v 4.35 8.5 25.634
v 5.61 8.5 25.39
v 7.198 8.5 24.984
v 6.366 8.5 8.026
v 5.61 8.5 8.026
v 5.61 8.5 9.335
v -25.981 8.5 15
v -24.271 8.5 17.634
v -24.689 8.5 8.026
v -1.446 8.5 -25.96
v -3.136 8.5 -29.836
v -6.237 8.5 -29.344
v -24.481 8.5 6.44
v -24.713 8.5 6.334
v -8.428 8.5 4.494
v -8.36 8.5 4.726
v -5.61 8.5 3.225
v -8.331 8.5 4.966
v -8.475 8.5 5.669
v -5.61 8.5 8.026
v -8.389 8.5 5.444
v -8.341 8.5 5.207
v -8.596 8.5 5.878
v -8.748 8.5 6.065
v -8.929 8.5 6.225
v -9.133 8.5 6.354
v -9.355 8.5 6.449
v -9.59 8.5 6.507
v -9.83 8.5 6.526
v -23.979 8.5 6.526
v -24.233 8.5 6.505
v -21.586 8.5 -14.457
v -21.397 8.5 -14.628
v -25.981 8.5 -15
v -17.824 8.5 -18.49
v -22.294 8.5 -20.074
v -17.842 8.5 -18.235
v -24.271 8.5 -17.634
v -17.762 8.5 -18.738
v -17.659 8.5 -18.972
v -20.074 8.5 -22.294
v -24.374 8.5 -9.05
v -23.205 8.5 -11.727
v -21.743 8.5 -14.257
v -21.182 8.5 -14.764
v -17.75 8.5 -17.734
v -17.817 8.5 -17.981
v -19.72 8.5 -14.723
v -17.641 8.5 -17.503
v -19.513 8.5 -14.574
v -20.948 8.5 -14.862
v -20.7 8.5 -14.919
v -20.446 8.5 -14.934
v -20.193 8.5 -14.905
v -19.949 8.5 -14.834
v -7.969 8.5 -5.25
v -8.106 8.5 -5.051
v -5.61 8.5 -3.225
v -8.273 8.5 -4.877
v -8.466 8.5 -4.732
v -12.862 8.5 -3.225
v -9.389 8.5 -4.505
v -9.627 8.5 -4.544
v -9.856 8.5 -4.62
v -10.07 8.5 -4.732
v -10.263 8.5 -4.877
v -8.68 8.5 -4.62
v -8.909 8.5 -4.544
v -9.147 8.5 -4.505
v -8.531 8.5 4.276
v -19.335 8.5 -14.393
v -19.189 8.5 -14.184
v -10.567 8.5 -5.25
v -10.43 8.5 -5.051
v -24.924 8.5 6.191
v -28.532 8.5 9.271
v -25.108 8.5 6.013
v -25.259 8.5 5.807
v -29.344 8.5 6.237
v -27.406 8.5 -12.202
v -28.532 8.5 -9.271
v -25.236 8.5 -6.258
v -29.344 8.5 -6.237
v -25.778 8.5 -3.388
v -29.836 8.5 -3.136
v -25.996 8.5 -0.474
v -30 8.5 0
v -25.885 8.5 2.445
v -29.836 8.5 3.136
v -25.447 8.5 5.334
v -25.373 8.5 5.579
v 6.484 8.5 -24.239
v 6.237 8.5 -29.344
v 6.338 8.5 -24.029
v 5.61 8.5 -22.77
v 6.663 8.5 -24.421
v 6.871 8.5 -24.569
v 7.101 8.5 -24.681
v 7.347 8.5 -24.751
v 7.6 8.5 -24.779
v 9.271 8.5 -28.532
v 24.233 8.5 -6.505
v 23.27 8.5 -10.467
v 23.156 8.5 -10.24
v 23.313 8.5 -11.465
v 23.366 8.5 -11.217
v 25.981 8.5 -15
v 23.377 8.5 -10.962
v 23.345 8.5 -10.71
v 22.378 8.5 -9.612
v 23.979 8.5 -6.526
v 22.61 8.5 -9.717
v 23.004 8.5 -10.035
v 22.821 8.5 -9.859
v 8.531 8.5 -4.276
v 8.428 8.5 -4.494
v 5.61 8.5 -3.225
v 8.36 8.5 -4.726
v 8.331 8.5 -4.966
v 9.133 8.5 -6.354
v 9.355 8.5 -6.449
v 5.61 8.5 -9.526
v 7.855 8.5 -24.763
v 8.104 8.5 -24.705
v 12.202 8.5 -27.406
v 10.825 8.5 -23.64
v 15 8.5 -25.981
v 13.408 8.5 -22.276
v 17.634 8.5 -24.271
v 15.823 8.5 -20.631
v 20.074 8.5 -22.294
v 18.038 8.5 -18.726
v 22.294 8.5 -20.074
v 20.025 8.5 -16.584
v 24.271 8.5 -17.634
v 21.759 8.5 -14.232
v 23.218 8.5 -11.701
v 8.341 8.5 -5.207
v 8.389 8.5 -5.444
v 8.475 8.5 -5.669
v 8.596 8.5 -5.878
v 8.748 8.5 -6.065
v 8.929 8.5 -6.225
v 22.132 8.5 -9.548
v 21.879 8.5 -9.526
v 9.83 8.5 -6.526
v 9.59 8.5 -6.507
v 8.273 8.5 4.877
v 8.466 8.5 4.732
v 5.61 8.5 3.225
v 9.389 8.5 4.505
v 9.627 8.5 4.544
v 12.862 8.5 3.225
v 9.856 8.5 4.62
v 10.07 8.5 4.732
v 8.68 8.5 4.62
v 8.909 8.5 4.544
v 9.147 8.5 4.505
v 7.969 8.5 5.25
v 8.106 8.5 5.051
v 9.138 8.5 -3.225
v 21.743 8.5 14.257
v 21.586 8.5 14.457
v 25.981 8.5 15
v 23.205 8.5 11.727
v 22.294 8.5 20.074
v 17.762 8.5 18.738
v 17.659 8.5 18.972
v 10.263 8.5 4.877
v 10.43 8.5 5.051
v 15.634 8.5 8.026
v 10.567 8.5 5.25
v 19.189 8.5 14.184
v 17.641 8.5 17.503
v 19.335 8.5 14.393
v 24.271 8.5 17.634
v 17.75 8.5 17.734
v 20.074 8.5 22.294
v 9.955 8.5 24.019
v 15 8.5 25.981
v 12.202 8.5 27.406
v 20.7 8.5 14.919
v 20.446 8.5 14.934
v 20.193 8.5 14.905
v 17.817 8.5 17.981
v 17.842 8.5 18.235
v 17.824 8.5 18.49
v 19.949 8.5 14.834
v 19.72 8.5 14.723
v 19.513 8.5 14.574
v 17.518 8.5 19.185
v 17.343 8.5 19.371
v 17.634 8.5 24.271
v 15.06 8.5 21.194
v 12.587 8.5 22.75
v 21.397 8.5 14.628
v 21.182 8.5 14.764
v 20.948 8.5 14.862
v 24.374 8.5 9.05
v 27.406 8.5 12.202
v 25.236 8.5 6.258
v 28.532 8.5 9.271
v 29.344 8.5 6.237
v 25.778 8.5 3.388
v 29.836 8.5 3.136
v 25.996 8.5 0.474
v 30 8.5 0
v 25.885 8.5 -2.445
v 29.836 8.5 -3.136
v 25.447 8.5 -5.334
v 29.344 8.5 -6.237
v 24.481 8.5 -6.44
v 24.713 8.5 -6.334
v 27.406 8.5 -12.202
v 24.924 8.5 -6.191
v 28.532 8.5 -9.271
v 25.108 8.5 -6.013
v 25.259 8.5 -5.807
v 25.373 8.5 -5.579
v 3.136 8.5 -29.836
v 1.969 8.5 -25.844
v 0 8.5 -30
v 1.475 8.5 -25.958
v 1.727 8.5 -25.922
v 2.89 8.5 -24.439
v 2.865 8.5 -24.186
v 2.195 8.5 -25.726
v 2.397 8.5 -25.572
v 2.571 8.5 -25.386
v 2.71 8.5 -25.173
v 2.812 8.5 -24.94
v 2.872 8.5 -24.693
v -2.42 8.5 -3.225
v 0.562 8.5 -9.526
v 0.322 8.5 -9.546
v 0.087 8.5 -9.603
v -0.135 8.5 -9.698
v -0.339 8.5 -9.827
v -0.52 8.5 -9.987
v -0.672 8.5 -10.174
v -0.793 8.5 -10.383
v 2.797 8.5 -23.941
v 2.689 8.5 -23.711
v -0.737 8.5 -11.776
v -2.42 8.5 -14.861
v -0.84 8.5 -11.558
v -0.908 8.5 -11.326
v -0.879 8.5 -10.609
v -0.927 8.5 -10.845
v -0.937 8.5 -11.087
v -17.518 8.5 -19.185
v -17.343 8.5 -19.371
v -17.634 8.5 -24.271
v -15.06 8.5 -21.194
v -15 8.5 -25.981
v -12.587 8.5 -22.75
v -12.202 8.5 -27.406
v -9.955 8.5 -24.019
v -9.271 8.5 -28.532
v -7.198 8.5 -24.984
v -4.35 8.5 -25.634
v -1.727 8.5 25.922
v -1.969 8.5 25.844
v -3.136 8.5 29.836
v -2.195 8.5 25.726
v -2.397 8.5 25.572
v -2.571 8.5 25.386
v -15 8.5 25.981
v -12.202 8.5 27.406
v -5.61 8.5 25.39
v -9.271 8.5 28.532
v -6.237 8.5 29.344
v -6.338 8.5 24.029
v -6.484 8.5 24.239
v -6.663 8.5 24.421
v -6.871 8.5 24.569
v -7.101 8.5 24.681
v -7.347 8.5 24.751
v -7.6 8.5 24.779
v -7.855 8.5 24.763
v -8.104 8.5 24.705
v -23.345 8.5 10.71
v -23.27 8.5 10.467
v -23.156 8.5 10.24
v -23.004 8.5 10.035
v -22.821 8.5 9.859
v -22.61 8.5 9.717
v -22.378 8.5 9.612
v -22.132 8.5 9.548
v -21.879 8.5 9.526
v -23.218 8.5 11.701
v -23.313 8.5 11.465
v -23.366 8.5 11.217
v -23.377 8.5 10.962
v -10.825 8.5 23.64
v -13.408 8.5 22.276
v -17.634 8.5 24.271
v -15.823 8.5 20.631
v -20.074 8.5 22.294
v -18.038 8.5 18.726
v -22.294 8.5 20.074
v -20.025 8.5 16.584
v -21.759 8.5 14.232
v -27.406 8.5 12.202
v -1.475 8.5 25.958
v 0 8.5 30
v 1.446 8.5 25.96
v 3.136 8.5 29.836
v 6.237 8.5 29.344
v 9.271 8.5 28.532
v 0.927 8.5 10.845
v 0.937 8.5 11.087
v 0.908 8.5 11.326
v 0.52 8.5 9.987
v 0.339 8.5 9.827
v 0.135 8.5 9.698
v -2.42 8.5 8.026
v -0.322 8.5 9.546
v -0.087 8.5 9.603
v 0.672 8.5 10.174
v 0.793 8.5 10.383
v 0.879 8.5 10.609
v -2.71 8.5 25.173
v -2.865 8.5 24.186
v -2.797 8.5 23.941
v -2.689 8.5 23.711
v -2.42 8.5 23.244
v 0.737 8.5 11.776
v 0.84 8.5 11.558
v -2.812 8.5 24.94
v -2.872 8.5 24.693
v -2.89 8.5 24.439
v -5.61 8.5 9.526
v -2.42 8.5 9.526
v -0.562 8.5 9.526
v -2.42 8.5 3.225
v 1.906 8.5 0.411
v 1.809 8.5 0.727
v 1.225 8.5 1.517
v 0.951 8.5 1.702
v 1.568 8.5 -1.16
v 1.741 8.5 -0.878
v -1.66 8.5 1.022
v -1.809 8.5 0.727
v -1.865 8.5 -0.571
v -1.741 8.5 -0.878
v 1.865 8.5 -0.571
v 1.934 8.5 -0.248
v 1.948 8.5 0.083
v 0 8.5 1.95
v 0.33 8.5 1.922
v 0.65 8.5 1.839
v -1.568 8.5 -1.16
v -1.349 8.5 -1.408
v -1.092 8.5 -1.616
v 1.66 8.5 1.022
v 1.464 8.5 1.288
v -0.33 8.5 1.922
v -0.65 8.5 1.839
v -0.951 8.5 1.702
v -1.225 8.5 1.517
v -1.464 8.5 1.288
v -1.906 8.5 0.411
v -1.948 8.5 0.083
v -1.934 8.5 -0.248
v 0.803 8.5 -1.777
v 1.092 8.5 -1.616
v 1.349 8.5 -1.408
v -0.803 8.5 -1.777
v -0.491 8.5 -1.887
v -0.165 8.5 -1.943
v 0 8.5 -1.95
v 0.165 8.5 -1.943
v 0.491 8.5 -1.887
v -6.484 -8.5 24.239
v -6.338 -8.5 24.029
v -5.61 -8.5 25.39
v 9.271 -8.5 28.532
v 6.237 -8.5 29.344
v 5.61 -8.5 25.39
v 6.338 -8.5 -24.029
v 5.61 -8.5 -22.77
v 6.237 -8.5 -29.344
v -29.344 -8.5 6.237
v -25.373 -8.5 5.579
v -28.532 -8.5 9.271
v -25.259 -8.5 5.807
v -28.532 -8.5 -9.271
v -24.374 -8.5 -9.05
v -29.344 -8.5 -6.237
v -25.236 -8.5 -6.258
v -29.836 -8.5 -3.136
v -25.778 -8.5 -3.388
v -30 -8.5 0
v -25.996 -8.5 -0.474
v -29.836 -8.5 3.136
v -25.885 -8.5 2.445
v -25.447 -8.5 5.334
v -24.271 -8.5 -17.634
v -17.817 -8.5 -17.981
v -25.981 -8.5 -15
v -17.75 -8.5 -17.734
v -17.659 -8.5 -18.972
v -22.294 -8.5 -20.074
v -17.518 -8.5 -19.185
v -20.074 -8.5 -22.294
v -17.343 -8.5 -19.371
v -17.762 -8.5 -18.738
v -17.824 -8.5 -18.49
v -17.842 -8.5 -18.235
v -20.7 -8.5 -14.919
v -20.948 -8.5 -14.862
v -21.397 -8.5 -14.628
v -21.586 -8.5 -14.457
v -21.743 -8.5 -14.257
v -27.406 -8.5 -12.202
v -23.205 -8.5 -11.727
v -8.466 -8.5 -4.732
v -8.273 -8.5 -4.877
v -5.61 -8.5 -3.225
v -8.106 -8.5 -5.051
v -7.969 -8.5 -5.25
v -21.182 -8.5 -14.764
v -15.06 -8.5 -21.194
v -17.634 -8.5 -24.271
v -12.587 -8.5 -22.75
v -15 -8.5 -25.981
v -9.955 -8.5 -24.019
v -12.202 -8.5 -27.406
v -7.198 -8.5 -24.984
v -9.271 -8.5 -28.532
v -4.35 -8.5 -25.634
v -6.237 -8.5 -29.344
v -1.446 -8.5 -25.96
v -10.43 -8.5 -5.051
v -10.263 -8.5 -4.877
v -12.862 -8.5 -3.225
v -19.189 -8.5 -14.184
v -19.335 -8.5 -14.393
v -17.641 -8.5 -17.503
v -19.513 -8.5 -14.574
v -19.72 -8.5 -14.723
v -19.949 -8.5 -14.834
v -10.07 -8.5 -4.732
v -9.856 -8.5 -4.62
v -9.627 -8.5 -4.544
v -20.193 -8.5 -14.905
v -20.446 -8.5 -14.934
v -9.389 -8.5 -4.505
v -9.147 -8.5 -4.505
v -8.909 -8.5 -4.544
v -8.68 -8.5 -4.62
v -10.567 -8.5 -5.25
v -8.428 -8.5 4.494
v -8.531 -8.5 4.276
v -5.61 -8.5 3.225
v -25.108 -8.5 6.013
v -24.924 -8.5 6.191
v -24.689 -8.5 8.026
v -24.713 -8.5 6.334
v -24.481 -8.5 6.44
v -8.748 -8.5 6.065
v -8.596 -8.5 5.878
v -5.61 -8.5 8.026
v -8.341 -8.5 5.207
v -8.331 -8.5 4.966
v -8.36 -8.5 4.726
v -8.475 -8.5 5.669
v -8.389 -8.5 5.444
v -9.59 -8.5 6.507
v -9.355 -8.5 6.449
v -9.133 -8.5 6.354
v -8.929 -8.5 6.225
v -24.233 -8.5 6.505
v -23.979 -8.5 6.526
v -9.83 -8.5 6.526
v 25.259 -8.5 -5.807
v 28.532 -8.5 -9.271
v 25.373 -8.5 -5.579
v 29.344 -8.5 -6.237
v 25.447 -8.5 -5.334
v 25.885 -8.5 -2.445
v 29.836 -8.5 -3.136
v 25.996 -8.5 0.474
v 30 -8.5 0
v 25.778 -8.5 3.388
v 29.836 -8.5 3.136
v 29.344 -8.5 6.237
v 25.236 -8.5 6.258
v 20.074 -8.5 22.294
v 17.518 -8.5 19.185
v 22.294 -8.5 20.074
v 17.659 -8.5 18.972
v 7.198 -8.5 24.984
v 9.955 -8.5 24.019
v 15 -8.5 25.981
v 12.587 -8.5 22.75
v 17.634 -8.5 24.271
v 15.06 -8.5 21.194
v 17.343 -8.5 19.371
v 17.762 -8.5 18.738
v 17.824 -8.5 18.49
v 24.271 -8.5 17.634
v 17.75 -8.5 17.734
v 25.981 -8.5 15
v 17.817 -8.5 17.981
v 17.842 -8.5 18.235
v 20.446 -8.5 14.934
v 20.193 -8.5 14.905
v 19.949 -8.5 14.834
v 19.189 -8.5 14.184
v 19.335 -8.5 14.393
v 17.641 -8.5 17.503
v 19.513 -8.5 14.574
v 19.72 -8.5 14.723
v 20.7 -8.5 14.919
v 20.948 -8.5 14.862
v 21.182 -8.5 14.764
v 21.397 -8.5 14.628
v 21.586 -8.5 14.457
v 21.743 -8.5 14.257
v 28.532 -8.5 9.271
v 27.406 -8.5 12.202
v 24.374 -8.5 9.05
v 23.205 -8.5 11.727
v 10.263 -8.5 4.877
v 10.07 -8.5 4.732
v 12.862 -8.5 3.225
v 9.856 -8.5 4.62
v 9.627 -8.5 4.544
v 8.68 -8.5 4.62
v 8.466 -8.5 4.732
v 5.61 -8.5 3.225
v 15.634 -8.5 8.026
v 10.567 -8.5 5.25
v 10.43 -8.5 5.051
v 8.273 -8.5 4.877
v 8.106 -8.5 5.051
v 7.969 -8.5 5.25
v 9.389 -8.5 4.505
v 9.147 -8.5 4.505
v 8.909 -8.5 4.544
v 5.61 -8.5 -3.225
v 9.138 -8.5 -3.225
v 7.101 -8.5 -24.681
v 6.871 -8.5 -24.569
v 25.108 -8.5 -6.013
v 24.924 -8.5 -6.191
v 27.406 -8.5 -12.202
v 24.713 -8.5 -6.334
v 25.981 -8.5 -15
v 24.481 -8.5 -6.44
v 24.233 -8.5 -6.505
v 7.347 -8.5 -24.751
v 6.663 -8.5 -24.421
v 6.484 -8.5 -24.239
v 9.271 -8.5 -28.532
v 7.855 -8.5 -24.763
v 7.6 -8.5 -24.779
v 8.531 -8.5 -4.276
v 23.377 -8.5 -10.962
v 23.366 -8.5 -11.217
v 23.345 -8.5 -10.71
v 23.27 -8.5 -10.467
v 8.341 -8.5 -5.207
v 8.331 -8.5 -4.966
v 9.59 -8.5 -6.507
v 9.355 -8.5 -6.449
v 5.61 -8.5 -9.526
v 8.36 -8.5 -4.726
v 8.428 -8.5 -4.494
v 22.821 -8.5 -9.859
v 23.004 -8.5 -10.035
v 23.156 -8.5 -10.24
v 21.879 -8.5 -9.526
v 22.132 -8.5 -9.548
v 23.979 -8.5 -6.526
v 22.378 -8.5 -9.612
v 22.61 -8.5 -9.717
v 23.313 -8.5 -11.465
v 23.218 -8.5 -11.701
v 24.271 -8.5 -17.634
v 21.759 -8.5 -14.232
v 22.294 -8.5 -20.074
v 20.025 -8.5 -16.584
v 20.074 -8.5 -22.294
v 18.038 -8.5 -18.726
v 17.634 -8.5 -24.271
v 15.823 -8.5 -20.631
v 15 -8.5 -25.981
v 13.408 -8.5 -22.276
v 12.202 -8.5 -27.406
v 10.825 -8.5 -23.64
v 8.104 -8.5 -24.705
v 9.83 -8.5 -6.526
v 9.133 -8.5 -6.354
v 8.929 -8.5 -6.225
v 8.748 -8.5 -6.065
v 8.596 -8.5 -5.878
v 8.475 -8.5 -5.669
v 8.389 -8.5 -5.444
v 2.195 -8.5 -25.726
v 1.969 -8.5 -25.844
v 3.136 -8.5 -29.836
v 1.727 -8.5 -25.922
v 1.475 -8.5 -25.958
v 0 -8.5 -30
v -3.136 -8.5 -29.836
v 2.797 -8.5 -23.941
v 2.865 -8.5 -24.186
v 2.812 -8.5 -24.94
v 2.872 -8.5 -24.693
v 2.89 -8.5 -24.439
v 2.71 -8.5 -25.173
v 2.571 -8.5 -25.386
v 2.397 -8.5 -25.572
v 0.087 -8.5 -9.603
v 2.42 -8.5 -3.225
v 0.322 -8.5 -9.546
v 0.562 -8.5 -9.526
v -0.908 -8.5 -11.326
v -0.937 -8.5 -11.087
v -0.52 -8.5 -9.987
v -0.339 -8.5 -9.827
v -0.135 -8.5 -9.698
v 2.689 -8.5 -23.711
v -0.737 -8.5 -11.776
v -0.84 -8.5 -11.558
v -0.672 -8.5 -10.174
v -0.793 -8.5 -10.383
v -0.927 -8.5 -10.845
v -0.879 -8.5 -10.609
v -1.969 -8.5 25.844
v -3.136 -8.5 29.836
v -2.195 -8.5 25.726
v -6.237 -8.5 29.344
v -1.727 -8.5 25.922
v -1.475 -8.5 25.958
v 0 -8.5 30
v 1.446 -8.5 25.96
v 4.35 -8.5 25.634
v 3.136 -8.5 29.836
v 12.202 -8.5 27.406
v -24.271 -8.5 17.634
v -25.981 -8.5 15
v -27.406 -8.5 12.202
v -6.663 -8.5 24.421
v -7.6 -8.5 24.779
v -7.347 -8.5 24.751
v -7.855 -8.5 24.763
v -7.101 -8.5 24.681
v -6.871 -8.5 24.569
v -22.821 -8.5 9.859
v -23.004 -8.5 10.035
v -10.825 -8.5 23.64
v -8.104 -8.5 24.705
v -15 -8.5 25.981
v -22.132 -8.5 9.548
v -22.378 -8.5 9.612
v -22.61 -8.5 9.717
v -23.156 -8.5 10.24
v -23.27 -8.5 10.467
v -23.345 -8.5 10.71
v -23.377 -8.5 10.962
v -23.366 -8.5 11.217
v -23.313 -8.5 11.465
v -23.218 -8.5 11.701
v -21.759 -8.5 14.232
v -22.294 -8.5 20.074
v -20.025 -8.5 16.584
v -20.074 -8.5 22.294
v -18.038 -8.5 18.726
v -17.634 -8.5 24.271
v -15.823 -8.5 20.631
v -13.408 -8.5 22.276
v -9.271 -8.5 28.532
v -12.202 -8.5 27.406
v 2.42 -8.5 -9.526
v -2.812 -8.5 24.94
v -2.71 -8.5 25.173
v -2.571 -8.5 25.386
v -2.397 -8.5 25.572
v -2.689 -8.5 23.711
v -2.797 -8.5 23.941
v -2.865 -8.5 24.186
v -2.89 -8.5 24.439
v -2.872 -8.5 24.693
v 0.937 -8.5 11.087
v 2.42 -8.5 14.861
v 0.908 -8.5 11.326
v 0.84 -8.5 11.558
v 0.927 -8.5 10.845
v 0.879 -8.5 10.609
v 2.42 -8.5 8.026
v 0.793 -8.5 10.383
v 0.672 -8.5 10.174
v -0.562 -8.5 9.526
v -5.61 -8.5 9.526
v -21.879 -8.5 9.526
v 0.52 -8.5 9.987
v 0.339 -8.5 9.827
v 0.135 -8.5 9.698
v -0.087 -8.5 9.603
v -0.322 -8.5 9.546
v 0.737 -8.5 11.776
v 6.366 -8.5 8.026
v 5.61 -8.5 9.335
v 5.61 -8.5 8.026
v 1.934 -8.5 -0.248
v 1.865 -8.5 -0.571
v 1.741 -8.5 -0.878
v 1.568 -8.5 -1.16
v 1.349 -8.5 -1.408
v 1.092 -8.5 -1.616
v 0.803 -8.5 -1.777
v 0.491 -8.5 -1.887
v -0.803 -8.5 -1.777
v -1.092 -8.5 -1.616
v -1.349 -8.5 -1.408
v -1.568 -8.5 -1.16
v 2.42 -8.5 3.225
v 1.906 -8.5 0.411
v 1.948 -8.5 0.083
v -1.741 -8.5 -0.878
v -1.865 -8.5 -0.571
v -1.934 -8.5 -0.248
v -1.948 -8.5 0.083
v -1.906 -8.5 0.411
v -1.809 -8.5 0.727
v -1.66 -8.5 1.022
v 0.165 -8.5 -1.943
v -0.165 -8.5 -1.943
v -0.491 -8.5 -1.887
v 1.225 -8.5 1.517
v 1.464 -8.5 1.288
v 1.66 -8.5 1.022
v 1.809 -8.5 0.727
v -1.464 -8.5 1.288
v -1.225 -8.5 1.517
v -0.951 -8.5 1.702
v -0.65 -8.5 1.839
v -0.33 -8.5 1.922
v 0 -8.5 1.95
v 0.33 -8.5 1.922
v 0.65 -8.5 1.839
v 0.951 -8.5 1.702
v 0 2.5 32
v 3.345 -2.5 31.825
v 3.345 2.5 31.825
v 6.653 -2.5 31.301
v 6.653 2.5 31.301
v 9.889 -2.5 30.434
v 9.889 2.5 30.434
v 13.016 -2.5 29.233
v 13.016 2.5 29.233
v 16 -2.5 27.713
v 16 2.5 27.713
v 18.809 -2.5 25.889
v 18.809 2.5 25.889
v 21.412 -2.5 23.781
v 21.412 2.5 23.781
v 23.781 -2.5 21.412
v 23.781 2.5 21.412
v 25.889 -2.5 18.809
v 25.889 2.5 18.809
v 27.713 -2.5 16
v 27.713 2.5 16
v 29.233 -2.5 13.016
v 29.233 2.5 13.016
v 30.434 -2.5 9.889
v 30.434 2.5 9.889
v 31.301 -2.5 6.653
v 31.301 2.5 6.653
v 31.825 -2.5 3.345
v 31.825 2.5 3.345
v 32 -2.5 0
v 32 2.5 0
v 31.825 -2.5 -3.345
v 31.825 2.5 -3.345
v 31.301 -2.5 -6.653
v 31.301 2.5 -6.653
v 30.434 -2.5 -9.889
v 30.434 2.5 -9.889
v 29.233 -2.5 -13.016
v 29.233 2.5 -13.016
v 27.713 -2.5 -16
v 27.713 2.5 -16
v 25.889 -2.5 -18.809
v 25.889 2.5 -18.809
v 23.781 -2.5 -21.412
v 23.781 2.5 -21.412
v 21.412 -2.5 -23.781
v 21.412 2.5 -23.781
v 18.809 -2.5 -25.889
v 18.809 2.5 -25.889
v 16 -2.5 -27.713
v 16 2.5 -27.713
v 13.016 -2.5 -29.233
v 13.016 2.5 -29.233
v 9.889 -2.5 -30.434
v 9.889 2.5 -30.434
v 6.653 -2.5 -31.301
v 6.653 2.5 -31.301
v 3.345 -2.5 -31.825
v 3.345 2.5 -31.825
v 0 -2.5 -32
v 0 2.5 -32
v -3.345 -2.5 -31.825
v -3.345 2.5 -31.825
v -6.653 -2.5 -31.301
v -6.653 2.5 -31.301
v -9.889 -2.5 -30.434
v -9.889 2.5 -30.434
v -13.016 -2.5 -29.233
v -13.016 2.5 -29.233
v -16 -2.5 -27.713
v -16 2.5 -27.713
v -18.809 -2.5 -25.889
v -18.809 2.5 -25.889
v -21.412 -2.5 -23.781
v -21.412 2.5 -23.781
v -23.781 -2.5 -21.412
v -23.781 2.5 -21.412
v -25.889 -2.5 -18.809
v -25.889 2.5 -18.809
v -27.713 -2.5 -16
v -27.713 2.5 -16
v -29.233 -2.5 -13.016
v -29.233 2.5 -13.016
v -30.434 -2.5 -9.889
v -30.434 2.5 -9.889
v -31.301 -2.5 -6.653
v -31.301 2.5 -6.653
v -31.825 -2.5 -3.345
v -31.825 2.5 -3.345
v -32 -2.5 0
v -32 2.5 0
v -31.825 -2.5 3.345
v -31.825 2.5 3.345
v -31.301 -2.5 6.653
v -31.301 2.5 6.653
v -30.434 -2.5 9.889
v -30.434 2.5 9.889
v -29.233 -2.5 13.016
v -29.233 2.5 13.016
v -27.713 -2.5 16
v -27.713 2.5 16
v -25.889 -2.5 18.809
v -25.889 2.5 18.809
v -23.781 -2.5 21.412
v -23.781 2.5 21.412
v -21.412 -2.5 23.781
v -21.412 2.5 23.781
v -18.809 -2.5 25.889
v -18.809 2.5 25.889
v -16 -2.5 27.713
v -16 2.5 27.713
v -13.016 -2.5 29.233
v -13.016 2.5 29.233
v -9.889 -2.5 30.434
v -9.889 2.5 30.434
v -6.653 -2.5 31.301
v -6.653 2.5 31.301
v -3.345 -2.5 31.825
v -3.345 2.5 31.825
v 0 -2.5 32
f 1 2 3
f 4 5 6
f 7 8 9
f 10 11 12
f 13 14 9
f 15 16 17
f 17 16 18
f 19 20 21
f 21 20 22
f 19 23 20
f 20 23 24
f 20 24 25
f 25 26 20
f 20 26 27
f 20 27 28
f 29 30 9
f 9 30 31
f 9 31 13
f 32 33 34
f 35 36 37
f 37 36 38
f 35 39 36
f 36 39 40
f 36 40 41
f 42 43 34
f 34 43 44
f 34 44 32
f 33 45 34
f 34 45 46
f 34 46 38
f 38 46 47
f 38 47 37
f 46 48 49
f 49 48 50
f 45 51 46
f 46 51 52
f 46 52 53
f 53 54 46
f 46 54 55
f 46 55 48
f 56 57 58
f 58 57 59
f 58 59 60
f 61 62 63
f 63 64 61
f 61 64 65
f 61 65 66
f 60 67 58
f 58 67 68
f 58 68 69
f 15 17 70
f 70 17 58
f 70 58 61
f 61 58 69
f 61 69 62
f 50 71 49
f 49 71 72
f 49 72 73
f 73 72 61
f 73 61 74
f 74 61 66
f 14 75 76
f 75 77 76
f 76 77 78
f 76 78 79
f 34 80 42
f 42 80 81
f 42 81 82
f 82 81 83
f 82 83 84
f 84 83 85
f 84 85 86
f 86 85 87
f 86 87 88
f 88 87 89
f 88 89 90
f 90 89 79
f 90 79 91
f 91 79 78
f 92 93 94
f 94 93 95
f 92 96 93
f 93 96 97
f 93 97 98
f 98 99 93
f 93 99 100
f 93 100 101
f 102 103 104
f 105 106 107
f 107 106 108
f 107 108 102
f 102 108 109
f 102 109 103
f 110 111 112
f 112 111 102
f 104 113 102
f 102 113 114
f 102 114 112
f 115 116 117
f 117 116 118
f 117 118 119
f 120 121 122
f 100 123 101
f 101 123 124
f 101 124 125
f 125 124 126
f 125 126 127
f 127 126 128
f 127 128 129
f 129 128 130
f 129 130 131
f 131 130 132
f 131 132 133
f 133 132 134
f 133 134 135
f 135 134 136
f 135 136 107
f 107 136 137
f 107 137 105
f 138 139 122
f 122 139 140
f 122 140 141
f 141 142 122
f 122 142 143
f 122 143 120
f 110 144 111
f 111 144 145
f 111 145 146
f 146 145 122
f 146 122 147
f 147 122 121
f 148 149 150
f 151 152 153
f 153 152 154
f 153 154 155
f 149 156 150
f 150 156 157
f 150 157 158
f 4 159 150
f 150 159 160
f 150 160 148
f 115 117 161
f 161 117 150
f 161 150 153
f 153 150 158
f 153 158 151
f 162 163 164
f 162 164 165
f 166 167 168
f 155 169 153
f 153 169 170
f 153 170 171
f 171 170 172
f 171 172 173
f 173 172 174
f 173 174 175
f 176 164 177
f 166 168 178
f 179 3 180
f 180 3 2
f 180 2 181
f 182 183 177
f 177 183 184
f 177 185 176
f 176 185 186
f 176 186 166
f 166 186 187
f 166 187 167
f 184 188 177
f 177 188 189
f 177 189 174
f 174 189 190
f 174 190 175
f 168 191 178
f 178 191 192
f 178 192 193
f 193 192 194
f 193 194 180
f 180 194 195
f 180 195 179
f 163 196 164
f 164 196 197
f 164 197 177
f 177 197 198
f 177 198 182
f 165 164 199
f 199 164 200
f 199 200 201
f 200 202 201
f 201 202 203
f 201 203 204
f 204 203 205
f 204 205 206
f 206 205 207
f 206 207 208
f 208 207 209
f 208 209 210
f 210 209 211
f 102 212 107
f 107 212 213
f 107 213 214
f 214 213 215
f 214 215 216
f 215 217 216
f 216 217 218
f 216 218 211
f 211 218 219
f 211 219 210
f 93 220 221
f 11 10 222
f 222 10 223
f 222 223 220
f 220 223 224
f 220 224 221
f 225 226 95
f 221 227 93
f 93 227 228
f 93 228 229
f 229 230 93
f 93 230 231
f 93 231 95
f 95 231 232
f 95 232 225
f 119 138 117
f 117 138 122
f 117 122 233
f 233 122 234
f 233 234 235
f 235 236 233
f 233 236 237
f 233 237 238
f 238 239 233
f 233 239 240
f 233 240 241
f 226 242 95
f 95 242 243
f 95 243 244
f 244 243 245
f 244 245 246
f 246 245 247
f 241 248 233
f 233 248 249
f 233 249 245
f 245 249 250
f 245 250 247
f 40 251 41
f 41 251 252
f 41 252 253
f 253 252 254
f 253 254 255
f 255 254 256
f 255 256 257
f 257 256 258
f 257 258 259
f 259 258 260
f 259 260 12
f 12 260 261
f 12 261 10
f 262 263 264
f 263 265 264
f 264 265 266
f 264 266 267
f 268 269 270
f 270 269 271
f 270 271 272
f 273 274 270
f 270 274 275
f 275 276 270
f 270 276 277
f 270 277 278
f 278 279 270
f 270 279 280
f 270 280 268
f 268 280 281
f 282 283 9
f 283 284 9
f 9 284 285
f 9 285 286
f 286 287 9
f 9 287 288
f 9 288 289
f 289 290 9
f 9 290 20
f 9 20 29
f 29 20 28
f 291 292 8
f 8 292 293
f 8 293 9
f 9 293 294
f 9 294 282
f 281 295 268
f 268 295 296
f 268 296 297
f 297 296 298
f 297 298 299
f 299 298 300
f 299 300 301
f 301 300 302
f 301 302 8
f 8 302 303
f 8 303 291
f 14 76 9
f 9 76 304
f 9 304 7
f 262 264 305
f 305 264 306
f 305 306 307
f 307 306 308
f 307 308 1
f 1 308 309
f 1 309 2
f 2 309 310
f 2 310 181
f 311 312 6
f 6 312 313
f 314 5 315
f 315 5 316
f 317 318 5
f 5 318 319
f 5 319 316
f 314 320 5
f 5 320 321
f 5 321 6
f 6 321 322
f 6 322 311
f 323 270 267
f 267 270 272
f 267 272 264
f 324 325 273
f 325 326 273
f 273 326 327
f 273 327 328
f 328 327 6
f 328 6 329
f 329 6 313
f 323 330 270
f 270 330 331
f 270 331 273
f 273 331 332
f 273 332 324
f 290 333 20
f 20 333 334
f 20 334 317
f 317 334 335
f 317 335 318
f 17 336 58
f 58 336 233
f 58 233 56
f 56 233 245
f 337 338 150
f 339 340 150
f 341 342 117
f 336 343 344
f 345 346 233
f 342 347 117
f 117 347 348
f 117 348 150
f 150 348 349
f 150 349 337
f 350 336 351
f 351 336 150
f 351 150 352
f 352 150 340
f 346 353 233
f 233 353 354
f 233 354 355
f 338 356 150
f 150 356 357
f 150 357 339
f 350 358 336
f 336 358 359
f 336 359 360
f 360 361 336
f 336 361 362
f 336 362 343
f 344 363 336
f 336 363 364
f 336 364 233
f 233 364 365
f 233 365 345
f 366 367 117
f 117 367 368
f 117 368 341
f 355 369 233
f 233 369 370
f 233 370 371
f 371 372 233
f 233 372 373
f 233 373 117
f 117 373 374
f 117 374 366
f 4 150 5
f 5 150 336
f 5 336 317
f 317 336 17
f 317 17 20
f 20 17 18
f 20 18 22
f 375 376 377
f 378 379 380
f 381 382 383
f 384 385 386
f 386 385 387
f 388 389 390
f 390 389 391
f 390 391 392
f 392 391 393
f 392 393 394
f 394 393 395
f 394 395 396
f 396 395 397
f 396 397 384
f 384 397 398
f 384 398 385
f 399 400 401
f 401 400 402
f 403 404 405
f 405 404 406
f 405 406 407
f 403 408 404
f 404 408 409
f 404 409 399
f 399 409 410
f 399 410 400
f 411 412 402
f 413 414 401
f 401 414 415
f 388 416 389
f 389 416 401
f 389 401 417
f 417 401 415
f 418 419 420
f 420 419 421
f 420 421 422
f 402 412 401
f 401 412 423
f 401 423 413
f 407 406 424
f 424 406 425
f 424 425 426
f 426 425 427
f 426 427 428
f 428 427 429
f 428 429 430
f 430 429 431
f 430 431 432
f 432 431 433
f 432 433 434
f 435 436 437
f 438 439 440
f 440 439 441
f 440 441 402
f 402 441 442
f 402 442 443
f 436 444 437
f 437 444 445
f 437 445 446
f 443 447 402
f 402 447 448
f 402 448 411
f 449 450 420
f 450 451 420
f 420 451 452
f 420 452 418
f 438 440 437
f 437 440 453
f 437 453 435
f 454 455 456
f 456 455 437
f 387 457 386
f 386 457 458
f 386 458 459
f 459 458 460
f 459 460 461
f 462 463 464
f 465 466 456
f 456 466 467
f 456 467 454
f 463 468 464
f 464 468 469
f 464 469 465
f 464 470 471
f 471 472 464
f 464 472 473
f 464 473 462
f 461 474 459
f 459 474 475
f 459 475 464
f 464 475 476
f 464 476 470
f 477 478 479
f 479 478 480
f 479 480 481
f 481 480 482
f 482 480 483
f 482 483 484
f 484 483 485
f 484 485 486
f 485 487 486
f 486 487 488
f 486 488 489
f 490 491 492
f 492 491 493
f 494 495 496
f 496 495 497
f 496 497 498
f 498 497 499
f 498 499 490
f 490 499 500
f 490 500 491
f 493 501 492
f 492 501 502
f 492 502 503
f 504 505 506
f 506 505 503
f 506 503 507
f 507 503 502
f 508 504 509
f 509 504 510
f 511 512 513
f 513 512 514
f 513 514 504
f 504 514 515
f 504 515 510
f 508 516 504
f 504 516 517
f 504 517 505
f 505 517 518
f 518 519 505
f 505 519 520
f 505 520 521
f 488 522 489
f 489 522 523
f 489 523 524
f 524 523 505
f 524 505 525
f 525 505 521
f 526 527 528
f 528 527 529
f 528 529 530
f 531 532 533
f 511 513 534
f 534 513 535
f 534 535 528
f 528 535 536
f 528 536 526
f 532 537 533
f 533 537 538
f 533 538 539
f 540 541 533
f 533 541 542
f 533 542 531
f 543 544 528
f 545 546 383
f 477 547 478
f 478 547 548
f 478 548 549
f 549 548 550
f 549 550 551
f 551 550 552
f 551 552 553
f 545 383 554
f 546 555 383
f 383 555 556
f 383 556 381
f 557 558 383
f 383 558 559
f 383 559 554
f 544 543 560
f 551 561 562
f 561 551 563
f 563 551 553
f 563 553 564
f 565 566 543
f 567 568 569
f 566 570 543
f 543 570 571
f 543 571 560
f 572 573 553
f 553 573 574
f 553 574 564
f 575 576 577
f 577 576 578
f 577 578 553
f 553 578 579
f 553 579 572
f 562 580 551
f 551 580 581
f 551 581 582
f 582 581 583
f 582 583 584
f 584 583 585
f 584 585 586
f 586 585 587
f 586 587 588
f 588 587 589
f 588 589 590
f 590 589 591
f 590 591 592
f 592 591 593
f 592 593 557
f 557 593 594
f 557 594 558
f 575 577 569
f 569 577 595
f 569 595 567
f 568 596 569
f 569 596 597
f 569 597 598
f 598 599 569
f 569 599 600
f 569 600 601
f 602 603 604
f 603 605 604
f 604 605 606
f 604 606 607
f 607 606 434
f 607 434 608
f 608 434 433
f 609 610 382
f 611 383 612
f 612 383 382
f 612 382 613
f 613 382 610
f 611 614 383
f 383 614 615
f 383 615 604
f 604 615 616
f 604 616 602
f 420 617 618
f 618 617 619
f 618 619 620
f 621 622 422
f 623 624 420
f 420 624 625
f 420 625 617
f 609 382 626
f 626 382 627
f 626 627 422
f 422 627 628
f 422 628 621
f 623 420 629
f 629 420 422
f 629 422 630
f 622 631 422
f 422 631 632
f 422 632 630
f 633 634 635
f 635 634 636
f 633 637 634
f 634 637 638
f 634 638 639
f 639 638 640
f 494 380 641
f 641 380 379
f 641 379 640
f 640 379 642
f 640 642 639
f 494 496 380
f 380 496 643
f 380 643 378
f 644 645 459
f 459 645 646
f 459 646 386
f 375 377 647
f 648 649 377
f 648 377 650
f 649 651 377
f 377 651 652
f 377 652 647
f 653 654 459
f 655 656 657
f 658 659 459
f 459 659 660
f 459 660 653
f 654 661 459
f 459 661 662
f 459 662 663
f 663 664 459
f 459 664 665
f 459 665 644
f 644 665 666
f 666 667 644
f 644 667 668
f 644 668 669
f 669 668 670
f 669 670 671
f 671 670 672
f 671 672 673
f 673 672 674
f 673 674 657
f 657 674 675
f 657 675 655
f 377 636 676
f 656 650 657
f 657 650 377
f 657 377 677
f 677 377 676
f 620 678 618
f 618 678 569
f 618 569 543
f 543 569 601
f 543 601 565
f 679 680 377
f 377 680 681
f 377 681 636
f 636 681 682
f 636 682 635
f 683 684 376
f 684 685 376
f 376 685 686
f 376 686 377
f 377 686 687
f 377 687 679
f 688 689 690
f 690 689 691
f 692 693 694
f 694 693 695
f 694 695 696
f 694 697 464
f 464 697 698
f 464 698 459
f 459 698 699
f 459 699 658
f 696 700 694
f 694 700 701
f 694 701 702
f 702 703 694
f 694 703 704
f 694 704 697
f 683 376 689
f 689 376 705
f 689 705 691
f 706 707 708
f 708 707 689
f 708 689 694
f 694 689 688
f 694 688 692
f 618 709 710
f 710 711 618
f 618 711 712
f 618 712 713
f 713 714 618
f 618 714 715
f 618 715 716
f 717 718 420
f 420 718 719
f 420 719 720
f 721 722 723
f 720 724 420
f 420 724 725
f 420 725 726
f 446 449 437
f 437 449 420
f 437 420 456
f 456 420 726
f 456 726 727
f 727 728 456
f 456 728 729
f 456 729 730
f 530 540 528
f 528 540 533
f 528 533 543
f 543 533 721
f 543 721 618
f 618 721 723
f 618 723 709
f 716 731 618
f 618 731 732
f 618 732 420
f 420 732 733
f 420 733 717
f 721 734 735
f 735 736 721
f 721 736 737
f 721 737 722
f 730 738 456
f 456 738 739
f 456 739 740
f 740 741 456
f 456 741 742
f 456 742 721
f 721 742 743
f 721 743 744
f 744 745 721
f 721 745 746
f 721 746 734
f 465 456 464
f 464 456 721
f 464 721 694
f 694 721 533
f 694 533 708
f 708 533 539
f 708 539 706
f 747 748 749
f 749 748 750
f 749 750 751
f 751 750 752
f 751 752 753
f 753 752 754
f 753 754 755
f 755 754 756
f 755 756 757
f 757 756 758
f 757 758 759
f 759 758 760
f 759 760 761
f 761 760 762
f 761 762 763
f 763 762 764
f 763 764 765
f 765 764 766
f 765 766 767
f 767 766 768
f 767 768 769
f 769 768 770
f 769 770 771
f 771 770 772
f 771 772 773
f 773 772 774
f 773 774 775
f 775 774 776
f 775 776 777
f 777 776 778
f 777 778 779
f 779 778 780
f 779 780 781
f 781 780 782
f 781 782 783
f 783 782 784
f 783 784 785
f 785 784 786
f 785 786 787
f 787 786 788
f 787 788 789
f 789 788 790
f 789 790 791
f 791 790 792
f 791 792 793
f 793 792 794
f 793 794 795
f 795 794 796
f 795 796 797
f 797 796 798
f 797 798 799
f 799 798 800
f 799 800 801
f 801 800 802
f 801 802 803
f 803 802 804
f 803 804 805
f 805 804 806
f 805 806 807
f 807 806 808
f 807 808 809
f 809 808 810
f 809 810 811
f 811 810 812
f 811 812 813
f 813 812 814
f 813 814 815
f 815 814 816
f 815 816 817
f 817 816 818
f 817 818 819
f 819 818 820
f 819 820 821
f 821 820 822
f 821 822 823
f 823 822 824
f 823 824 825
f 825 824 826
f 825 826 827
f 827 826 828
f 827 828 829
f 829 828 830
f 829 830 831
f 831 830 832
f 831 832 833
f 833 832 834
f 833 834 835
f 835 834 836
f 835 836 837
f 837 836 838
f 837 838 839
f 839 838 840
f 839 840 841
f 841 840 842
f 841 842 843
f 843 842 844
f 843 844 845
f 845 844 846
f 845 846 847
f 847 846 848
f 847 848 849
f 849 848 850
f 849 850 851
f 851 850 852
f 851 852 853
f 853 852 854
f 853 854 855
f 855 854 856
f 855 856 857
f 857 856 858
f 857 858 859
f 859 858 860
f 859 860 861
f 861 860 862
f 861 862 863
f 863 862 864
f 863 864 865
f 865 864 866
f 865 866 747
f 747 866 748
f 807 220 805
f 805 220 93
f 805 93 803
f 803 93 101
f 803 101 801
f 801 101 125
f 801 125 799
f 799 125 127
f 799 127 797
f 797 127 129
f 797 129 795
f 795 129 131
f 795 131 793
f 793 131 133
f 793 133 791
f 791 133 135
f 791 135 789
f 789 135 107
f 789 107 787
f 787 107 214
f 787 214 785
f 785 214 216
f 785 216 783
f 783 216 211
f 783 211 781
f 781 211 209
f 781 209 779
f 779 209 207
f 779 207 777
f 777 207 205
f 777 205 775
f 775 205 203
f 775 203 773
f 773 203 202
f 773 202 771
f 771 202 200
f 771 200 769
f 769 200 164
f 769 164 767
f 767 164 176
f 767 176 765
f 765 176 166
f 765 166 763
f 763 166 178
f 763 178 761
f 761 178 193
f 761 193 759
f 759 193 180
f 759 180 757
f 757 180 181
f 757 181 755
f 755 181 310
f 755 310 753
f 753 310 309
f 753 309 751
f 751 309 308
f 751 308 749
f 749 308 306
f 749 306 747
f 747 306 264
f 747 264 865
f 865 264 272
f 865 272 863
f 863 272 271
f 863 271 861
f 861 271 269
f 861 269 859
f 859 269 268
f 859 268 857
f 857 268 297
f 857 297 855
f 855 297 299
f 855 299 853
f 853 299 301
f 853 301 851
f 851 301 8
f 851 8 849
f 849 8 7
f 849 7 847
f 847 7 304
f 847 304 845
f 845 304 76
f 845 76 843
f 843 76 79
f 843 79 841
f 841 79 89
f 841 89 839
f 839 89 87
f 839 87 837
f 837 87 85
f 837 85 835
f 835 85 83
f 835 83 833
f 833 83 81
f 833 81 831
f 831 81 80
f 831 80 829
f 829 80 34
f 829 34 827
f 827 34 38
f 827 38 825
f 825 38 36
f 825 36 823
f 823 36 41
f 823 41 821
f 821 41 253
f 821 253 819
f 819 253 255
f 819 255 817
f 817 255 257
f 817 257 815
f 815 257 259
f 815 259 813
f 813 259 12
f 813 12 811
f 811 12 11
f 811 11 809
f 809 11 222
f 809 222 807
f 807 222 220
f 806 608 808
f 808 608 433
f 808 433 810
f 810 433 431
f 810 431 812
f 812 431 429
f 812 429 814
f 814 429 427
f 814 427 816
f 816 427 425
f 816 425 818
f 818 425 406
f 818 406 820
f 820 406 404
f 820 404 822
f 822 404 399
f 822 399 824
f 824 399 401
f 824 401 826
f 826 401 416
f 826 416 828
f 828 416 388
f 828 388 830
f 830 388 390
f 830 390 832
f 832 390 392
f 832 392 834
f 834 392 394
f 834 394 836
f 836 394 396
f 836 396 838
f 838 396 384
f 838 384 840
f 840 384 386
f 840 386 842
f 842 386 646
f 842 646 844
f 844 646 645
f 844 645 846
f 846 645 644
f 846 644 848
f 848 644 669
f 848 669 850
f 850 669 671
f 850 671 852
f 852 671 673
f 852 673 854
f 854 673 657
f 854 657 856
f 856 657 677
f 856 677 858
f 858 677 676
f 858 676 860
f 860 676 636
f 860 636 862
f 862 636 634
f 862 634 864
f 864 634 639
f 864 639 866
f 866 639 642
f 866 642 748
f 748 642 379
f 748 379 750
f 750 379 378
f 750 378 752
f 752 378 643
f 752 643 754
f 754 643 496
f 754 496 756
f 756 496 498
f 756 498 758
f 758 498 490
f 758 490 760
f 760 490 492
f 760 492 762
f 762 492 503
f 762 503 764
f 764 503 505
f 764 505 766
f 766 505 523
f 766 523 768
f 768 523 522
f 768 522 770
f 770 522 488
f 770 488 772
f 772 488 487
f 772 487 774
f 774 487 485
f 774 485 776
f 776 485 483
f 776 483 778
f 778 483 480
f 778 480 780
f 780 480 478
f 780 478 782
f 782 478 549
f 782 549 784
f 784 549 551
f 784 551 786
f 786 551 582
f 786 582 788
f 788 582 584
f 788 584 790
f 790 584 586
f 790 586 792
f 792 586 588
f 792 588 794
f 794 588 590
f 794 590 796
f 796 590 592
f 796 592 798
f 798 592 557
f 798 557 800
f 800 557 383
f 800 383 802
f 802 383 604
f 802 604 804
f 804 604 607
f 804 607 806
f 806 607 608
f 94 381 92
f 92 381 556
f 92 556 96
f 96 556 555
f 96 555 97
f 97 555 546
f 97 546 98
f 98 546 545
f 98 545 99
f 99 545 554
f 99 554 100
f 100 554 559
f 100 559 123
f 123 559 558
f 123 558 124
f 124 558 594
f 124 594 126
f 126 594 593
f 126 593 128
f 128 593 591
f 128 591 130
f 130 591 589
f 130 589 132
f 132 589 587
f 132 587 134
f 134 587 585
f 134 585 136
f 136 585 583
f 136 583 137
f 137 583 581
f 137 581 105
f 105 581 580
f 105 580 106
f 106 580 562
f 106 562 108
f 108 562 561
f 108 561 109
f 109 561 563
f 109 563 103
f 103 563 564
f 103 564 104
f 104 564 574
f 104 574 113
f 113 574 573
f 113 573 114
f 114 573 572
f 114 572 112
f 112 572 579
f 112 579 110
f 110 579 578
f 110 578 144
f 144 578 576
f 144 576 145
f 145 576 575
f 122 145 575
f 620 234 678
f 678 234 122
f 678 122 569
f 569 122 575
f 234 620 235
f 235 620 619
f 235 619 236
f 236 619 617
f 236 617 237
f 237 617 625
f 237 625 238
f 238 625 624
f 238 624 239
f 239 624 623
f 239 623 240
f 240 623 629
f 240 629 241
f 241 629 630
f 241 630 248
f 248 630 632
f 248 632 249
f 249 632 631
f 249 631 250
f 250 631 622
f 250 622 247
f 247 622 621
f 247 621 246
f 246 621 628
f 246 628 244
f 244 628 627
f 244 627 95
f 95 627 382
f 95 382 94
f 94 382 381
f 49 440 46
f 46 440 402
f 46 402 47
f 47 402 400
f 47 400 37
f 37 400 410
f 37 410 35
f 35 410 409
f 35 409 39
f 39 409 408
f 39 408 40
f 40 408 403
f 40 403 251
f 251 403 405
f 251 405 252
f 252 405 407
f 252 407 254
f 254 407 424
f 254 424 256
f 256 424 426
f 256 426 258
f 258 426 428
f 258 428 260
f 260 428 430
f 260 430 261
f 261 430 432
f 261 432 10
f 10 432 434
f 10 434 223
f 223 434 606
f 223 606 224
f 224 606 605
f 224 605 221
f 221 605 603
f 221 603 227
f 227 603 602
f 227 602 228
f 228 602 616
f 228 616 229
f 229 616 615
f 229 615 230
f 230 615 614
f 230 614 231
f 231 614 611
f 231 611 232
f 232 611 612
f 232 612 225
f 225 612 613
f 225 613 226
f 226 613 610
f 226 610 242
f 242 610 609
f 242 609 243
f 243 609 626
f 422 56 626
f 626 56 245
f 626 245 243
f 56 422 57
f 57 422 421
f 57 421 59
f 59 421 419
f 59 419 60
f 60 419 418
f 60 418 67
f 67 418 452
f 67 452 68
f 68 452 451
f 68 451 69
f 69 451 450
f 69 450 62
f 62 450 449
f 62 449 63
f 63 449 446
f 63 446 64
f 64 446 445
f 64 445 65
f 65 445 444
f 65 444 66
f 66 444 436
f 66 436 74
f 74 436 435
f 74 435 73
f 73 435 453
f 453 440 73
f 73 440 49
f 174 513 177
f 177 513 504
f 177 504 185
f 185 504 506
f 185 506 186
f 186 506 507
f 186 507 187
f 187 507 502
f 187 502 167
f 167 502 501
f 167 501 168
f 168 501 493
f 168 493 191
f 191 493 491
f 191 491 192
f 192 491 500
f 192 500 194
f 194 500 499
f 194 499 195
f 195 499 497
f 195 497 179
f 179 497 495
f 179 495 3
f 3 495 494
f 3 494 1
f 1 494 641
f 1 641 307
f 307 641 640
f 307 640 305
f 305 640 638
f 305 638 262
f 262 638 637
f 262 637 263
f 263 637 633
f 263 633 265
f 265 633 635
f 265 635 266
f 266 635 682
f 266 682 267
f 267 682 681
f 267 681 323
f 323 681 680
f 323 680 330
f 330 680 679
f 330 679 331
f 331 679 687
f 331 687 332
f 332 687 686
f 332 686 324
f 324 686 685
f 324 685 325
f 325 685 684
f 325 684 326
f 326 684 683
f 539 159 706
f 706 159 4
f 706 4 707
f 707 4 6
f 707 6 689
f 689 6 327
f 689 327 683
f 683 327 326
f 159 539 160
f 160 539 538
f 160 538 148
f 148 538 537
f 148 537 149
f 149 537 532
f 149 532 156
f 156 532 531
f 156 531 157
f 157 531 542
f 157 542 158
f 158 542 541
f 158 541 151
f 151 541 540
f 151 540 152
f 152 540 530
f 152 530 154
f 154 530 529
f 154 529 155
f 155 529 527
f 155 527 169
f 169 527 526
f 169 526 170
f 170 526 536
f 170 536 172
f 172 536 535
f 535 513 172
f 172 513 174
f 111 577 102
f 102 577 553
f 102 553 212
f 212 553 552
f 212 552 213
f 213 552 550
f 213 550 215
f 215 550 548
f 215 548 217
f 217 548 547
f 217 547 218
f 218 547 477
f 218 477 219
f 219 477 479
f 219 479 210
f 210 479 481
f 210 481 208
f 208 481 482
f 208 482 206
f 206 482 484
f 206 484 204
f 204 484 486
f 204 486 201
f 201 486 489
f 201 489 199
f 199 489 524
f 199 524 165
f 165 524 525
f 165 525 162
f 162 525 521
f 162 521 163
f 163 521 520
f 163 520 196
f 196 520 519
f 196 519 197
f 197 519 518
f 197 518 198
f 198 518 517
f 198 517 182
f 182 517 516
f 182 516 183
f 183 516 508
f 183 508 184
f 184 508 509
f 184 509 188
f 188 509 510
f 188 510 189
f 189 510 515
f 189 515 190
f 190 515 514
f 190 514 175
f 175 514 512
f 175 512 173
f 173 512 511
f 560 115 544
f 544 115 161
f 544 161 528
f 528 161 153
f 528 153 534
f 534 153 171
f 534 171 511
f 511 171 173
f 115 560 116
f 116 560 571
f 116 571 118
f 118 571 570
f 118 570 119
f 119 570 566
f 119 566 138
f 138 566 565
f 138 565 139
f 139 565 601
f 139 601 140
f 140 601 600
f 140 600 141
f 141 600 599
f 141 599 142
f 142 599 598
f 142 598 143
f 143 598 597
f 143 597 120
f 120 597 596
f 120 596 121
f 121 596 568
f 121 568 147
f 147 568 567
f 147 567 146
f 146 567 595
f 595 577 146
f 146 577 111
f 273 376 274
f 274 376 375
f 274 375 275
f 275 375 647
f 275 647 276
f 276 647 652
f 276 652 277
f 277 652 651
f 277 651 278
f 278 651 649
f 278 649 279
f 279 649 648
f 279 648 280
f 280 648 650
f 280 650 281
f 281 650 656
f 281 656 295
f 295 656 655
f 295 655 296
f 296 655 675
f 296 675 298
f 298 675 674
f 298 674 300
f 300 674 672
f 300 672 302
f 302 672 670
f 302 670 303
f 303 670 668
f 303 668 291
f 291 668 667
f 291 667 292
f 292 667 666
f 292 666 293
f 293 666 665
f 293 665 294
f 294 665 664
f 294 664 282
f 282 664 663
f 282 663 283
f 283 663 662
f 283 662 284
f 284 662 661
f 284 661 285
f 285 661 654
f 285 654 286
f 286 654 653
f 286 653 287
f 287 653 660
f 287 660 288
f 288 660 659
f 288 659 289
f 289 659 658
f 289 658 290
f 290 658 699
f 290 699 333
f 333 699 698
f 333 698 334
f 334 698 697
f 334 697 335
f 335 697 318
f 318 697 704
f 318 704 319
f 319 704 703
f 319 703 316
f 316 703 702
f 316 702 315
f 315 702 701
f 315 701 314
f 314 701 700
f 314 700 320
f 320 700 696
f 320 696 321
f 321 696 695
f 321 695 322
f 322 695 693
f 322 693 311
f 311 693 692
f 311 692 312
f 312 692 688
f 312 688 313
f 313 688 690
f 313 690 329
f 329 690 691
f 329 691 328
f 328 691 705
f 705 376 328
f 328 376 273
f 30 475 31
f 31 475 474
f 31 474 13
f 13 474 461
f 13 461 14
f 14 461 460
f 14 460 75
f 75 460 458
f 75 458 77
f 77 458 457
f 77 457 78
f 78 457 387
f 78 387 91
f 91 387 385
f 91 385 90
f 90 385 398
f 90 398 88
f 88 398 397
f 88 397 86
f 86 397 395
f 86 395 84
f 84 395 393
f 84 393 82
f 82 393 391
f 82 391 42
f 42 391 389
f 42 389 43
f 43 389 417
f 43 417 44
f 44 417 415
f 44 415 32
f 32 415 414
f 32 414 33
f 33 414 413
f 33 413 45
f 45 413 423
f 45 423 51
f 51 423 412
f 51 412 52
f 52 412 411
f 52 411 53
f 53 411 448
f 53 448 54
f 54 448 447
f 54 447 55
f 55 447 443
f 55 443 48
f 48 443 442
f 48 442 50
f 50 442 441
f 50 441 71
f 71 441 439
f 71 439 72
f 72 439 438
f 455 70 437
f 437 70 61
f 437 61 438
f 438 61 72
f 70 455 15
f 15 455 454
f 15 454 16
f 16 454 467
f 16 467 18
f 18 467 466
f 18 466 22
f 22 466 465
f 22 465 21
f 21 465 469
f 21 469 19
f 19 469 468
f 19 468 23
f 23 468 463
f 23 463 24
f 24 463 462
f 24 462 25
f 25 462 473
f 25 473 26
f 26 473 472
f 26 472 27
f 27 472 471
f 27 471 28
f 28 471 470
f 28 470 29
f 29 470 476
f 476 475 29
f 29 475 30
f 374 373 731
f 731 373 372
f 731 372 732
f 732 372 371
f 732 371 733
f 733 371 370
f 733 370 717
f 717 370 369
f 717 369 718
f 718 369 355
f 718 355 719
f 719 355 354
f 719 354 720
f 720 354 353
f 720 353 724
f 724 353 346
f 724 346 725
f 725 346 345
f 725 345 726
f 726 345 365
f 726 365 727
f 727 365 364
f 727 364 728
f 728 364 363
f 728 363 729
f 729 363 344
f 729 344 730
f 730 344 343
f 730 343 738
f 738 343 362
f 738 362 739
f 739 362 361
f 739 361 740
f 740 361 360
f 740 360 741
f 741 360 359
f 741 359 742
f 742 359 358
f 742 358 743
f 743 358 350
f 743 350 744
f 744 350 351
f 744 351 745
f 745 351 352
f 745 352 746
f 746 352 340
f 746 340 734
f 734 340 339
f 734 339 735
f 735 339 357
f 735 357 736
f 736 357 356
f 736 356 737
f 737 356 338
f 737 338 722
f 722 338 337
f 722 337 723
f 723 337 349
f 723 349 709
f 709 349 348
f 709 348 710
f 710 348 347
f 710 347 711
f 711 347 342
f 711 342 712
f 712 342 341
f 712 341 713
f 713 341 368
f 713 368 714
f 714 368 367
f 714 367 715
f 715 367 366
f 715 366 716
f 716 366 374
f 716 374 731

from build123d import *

# Parameters (mm, degrees)
CUT_EXTRUDE1_REACH             = 48.046
CUT_EXTRUDE1_DIRECTION_2_REACH = 48.046
CIRPATTERN1_COUNT              = 6
CUT_EXTRUDE2_DEPTH             = 15
CUT_EXTRUDE2_DEPTH_BACK        = 15
SKETCH6_R                      = 1.95


with BuildPart() as part:
    # Sketch2 → Revolve1 (revolve)
    with BuildSketch(Plane.XY, mode=Mode.PRIVATE) as revolve1_sk:
        Polygon((0, 0), (32, 0), (32, 2.5), (30, 8.5), (0, 8.5), align=None)
    revolve1 = revolve(revolve1_sk.sketch.rotate(Axis((0, 8.5, 0), (0, -1, 0)), 90), axis=Axis((0, 8.5, 0), (0, -1, 0)))

    # Mirror1: Revolve1 across plane
    add(revolve1.mirror(Plane.ZX))

    # Cut-Extrude1: up to this face of the body (flat: up to its plane)
    cut_extrude1_end = Plane(part.part.faces().sort_by_distance((0, 8.5, 0))[0])
    # Sketch3 → Cut-Extrude1 (cut, up to the picked face)
    with BuildSketch(Plane(origin=(0, 0, 0), x_dir=(1, 0, 0), z_dir=(0, 1, 0)), mode=Mode.PRIVATE) as cut_extrude1_sk1:
        with BuildLine():
            Line((0.562177826, 9.526279442), (5.5, 9.526279442))
            Line((5.5, 9.526279442), (21.878554835, 9.526279442))
            ThreePointArc((21.878554835, 9.526279442), (23.155781812, 10.23971015), (23.218058192, 11.701357775))
            ThreePointArc((23.218058192, 11.701357775), (16.957041557, 19.709356703), (8.104096566, 24.704728674))
            ThreePointArc((8.104096566, 24.704728674), (7.100974397, 24.680582577), (6.337514428, 24.029455866))
            Line((6.337514428, 24.029455866), (-0.736860279, 11.776279442))
            ThreePointArc((-0.736860279, 11.776279442), (-0.736860279, 10.276279442), (0.562177826, 9.526279442))
        make_face()
    cut_extrude1_tool1 = split(extrude(cut_extrude1_sk1.sketch, amount=CUT_EXTRUDE1_REACH, mode=Mode.PRIVATE), bisect_by=cut_extrude1_end, keep=Keep.BOTH, mode=Mode.PRIVATE)
    cut_extrude1 = cut_extrude1_tool1.solids().sort_by(Axis((10.856856, 0, -15.344995), (0, 1, 0)))[0]
    add(cut_extrude1, mode=Mode.SUBTRACT)

    # Cut-Extrude1 direction 2: up to this face of the body (flat: up to its plane)
    cut_extrude1_direction_2_end = Plane(part.part.faces().sort_by_distance((0, -8.5, 0))[0])
    # Sketch3 → Cut-Extrude1 direction 2 (cut, up to the picked face)
    with BuildSketch(Plane(origin=(0, 0, 0), x_dir=(1, 0, 0), z_dir=(0, 1, 0)), mode=Mode.PRIVATE) as cut_extrude1_direction_2_sk1:
        with BuildLine():
            Line((0.562177826, 9.526279442), (5.5, 9.526279442))
            Line((5.5, 9.526279442), (21.878554835, 9.526279442))
            ThreePointArc((21.878554835, 9.526279442), (23.155781812, 10.23971015), (23.218058192, 11.701357775))
            ThreePointArc((23.218058192, 11.701357775), (16.957041557, 19.709356703), (8.104096566, 24.704728674))
            ThreePointArc((8.104096566, 24.704728674), (7.100974397, 24.680582577), (6.337514428, 24.029455866))
            Line((6.337514428, 24.029455866), (-0.736860279, 11.776279442))
            ThreePointArc((-0.736860279, 11.776279442), (-0.736860279, 10.276279442), (0.562177826, 9.526279442))
        make_face()
    cut_extrude1_direction_2_tool1 = split(extrude(cut_extrude1_direction_2_sk1.sketch, amount=-CUT_EXTRUDE1_DIRECTION_2_REACH, mode=Mode.PRIVATE), bisect_by=cut_extrude1_direction_2_end, keep=Keep.BOTH, mode=Mode.PRIVATE)
    cut_extrude1_direction_2 = cut_extrude1_direction_2_tool1.solids().sort_by(Axis((10.856856, 0, -15.344995), (0, -1, 0)))[0]
    add(cut_extrude1_direction_2, mode=Mode.SUBTRACT)

    # CirPattern1: Cut-Extrude1, Cut-Extrude1 direction 2 ×6 about axis
    cirpattern1_axis = Axis((0, 0, 0), (0, 1, 0))
    add([cut_extrude1.rotate(cirpattern1_axis, i * 360 / CIRPATTERN1_COUNT) for i in range(1, CIRPATTERN1_COUNT)], mode=Mode.SUBTRACT)
    add([cut_extrude1_direction_2.rotate(cirpattern1_axis, i * 360 / CIRPATTERN1_COUNT) for i in range(1, CIRPATTERN1_COUNT)], mode=Mode.SUBTRACT)

    # Sketch6 → Cut-Extrude2 (cut, two sides: drawn at the far end of the back side and taken through both)
    with BuildSketch(Plane(origin=(0, 0, 0), x_dir=(1, 0, 0), z_dir=(0, 1, 0)).offset(-CUT_EXTRUDE2_DEPTH_BACK)):
        with Locations(Location((0, 0, 0), (0, 0, 270))):
            Circle(SKETCH6_R)
    extrude(amount=CUT_EXTRUDE2_DEPTH + CUT_EXTRUDE2_DEPTH_BACK, mode=Mode.SUBTRACT)


solid = part.part
